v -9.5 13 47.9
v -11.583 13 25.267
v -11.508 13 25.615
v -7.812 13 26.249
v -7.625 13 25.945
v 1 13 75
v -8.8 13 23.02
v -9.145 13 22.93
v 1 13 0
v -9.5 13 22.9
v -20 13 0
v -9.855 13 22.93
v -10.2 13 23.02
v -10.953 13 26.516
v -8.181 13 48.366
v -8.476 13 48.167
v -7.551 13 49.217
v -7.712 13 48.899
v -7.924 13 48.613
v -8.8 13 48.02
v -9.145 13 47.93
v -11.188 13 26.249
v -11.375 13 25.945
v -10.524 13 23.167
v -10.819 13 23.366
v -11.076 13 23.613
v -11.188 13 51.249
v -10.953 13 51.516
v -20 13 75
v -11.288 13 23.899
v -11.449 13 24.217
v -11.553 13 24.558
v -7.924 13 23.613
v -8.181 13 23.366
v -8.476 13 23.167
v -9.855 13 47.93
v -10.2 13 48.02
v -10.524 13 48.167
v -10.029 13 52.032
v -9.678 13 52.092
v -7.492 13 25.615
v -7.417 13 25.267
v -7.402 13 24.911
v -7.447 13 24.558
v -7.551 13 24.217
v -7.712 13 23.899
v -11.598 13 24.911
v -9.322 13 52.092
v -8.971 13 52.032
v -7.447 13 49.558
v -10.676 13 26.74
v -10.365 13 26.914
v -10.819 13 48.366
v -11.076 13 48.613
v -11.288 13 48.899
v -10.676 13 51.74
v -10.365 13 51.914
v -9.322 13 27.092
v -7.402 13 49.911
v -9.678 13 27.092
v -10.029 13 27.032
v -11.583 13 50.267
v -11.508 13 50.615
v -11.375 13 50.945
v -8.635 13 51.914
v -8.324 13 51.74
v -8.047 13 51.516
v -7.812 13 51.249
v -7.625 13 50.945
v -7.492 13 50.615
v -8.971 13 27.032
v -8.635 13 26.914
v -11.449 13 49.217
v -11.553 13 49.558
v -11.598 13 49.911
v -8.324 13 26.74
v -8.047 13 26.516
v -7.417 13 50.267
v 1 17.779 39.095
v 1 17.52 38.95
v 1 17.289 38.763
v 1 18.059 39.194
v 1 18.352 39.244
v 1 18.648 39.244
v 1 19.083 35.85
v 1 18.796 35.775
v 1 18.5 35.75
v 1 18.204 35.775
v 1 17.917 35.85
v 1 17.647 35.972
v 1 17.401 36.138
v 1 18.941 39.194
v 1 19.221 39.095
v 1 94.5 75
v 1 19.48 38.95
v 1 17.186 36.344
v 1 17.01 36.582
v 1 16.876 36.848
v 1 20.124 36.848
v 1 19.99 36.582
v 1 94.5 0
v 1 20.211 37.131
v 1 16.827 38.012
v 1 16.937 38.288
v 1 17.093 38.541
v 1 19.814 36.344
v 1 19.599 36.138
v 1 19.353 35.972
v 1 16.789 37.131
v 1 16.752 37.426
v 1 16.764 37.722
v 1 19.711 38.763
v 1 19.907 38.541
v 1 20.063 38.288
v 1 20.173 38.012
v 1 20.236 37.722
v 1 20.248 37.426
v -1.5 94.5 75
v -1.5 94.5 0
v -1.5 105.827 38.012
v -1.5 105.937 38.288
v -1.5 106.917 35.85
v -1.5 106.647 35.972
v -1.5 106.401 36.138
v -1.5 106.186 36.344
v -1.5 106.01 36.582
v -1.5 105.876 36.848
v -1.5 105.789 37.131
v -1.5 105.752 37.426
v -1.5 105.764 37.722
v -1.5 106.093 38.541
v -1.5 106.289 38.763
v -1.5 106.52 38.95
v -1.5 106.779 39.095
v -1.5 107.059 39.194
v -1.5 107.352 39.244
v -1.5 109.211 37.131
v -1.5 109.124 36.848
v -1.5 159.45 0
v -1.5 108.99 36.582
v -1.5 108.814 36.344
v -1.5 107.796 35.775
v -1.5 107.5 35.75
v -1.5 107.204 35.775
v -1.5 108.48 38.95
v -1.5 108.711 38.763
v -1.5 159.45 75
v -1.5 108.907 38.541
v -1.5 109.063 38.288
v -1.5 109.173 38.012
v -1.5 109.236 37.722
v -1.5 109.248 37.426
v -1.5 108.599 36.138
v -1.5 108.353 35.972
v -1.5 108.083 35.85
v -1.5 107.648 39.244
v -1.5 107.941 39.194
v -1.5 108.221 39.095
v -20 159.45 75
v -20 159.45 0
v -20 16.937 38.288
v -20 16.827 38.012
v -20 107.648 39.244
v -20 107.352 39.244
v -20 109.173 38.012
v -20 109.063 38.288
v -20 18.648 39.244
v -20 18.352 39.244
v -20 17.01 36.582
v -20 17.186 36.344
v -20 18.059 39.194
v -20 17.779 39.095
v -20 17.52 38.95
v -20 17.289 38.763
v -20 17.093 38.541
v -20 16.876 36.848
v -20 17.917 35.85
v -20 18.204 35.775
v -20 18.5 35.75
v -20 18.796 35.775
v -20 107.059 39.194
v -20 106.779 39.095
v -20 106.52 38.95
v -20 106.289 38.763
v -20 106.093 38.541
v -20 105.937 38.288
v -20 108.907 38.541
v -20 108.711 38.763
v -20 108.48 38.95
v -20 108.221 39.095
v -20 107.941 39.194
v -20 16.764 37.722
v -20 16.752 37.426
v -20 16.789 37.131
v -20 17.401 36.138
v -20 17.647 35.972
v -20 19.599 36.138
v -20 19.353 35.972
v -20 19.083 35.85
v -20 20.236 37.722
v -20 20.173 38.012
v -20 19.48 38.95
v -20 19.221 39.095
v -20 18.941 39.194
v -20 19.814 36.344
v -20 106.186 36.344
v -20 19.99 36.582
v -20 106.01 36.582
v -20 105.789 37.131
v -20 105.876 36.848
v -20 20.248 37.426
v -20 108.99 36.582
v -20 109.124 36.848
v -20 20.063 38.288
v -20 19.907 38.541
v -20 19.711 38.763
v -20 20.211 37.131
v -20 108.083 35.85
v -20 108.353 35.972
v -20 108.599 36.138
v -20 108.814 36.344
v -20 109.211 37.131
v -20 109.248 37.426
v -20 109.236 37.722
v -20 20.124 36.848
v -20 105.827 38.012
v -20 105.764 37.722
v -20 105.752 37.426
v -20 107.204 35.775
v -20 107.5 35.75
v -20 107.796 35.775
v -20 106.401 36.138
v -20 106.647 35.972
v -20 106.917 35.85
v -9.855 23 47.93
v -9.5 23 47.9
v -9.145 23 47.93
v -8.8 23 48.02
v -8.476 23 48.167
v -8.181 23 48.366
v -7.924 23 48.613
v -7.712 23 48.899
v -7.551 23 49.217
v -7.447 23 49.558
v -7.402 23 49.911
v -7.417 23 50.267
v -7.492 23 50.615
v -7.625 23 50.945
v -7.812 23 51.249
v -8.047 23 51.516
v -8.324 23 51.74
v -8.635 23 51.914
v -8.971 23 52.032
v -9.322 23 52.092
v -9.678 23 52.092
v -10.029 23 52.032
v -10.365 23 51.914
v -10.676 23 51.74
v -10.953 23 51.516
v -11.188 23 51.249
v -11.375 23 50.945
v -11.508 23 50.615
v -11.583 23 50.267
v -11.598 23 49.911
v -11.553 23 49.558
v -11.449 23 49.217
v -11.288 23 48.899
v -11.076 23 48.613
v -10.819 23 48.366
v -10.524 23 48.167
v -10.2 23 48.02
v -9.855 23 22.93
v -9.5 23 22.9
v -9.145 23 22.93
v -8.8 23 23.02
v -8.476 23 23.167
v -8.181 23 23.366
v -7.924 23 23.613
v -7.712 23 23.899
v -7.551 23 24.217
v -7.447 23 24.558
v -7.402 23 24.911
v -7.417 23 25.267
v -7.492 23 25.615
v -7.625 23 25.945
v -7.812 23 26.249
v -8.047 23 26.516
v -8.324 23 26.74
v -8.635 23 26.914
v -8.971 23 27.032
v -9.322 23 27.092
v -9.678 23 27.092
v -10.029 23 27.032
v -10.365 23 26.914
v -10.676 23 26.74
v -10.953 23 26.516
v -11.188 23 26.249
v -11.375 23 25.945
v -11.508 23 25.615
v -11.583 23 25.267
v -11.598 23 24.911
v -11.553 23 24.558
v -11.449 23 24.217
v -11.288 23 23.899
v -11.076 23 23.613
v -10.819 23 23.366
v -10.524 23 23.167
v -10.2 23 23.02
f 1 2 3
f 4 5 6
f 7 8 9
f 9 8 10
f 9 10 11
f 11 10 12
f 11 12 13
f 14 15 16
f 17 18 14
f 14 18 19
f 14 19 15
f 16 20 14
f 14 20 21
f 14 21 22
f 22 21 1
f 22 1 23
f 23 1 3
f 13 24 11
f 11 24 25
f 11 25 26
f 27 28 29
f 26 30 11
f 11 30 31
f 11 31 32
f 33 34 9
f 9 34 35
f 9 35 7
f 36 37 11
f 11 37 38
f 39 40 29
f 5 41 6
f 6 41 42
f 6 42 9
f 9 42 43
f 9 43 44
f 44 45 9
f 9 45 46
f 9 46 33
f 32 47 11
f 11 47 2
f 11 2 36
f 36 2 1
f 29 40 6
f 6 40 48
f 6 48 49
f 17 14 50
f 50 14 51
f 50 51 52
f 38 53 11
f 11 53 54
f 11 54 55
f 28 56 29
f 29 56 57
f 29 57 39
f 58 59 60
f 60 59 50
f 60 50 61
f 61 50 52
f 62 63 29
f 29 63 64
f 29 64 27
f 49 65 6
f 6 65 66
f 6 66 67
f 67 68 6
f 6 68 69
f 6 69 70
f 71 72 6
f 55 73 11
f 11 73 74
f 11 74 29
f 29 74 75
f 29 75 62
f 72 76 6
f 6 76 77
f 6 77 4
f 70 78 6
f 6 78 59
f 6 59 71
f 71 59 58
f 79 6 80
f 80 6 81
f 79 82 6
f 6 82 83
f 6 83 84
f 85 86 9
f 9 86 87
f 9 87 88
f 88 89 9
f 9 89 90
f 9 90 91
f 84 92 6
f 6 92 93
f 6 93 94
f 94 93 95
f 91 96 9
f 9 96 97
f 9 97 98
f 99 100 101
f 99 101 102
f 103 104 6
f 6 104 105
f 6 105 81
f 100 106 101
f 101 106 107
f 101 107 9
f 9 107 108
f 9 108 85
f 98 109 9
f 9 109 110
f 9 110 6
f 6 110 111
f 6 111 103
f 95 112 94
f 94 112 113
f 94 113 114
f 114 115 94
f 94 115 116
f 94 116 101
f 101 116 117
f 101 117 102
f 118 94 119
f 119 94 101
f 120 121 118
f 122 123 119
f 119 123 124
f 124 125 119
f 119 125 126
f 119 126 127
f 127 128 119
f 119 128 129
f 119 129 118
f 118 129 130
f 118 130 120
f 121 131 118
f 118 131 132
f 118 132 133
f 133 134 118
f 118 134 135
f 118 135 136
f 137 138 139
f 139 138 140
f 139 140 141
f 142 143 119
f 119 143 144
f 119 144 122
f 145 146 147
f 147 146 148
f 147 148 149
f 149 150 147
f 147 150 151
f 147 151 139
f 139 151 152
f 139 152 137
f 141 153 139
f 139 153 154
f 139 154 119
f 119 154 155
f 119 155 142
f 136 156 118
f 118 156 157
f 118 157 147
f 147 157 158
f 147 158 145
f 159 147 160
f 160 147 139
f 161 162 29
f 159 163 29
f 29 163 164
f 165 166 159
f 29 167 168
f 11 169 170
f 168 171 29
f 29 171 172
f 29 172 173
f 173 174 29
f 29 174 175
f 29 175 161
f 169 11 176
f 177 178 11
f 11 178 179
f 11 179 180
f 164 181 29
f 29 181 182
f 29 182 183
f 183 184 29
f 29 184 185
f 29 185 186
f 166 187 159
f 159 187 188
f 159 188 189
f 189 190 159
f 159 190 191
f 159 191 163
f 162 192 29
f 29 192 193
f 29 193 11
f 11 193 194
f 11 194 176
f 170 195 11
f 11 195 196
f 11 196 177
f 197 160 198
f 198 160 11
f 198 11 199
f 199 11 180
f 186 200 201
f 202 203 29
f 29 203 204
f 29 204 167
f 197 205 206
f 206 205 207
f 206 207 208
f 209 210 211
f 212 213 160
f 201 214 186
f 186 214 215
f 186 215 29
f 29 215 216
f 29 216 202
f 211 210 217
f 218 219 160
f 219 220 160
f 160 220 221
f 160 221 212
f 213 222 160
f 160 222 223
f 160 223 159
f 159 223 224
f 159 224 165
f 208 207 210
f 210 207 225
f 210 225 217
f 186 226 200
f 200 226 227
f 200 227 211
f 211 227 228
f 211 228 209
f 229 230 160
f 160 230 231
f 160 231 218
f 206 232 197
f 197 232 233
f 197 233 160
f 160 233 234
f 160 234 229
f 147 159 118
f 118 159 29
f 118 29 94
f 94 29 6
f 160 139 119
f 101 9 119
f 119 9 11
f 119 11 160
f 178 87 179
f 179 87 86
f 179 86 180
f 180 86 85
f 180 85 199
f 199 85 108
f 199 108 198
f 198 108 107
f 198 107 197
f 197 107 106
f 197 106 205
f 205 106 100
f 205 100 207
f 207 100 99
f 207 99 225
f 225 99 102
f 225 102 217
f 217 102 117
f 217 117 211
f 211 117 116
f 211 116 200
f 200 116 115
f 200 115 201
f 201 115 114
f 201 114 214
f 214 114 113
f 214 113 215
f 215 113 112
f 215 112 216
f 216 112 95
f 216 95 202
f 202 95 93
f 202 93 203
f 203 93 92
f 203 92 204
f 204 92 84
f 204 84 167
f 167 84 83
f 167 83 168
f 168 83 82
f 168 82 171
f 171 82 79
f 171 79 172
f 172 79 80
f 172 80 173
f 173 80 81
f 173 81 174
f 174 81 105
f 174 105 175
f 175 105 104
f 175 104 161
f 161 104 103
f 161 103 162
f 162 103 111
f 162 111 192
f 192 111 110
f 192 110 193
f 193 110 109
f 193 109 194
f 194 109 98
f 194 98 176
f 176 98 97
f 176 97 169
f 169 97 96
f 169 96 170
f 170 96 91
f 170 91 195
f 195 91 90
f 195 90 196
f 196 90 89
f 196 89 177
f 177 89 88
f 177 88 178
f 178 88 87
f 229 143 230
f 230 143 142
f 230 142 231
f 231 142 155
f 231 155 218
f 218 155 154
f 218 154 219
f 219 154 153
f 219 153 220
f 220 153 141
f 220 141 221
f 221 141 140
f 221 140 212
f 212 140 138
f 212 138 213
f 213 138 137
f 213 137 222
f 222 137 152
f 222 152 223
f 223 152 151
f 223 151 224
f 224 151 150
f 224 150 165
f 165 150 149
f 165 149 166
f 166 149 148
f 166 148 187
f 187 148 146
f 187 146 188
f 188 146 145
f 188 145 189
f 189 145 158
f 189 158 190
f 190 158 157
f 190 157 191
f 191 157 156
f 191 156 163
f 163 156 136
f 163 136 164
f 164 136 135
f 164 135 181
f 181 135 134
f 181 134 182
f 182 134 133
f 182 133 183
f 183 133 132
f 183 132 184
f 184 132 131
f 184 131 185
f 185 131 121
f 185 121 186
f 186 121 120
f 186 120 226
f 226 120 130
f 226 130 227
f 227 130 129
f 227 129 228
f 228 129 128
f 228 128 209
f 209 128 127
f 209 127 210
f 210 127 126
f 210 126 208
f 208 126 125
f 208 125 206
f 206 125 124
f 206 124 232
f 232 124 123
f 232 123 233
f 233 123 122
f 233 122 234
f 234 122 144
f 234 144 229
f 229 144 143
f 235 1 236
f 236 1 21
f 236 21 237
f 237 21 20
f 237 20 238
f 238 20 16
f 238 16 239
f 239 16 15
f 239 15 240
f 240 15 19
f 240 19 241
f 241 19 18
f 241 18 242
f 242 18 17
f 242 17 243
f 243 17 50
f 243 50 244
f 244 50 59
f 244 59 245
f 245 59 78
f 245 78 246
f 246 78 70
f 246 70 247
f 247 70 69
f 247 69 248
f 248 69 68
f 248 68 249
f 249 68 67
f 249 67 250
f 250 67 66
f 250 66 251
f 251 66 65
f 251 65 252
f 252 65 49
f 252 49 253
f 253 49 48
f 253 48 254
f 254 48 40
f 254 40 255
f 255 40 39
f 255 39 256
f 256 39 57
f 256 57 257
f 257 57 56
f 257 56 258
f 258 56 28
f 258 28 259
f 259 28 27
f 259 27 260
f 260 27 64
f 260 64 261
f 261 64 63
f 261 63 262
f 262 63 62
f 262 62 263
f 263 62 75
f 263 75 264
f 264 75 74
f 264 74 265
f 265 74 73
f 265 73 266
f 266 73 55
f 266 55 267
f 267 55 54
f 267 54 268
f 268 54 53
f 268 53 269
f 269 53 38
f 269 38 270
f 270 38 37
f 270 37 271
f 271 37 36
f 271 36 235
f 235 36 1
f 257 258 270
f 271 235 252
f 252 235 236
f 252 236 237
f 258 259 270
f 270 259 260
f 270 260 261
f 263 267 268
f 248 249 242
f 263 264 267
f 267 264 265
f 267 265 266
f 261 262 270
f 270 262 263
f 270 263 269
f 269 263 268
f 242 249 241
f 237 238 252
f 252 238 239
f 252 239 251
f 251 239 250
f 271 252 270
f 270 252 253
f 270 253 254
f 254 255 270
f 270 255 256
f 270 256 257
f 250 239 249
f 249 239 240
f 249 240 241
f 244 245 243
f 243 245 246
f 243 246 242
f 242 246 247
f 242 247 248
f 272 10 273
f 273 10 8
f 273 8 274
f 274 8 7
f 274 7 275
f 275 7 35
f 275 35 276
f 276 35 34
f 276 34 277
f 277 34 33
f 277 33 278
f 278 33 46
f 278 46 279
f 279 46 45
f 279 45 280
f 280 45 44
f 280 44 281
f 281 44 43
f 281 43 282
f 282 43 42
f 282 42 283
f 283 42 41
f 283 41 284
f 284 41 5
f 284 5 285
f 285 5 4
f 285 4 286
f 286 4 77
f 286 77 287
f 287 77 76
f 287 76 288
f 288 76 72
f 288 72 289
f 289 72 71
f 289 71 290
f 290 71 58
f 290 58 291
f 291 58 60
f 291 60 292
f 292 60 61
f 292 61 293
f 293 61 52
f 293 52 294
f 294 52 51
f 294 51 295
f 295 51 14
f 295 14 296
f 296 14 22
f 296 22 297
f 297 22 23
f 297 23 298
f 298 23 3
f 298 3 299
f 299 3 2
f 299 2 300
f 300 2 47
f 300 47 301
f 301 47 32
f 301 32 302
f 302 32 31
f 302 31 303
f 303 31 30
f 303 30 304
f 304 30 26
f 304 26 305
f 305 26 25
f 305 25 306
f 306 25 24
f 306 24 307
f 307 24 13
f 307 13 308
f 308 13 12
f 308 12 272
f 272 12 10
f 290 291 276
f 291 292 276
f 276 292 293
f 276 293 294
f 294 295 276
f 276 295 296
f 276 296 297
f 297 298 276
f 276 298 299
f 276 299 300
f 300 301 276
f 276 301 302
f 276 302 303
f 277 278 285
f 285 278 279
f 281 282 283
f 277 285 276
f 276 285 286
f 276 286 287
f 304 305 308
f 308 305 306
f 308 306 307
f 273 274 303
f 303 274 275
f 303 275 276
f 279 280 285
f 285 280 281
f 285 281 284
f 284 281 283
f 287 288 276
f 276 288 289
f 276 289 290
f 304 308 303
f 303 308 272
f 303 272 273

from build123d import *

# Parameters (mm, degrees)
BOSS_EXTRUDE1_DEPTH = 75
SKETCH2_R           = 1.75
CUT_EXTRUDE1_DEPTH  = 25
SKETCH4_R           = 1.75
CUT_EXTRUDE3_DEPTH  = 25
SKETCH5_R           = 2.1
CUT_EXTRUDE4_DEPTH  = 10


with BuildPart() as part:
    # Sketch1 → Boss-Extrude1 (new body)
    with BuildSketch(Plane.XY):
        Polygon((-20, 159.45), (-20, 13), (0, 13), (1, 13), (1, 94.5), (-1.5, 94.5), (-1.5, 159.45), align=None)
    extrude(amount=BOSS_EXTRUDE1_DEPTH)

    # Sketch2 → Cut-Extrude1 (cut)
    with BuildSketch(Plane(origin=(1, 0, 0), x_dir=(0, 0, -1), z_dir=(1, 0, 0))):
        with Locations((-37.5, 18.5)):
            Circle(SKETCH2_R)
    extrude(amount=-CUT_EXTRUDE1_DEPTH, mode=Mode.SUBTRACT)

    # Sketch4 → Cut-Extrude3 (cut)
    with BuildSketch(Plane(origin=(-1.5, 0, 0), x_dir=(0, 0, -1), z_dir=(1, 0, 0))):
        with Locations((-37.5, 107.5)):
            Circle(SKETCH4_R)
    extrude(amount=-CUT_EXTRUDE3_DEPTH, mode=Mode.SUBTRACT)

    # Sketch5 → Cut-Extrude4 (cut)
    with BuildSketch(Plane.XZ.offset(-13)):
        with Locations(Location((-9.5, 50, 0), (0, 0, 270))):
            Circle(SKETCH5_R)
        with Locations(Location((-9.5, 25, 0), (0, 0, 270))):
            Circle(SKETCH5_R)
    extrude(amount=-CUT_EXTRUDE4_DEPTH, mode=Mode.SUBTRACT)


solid = part.part
